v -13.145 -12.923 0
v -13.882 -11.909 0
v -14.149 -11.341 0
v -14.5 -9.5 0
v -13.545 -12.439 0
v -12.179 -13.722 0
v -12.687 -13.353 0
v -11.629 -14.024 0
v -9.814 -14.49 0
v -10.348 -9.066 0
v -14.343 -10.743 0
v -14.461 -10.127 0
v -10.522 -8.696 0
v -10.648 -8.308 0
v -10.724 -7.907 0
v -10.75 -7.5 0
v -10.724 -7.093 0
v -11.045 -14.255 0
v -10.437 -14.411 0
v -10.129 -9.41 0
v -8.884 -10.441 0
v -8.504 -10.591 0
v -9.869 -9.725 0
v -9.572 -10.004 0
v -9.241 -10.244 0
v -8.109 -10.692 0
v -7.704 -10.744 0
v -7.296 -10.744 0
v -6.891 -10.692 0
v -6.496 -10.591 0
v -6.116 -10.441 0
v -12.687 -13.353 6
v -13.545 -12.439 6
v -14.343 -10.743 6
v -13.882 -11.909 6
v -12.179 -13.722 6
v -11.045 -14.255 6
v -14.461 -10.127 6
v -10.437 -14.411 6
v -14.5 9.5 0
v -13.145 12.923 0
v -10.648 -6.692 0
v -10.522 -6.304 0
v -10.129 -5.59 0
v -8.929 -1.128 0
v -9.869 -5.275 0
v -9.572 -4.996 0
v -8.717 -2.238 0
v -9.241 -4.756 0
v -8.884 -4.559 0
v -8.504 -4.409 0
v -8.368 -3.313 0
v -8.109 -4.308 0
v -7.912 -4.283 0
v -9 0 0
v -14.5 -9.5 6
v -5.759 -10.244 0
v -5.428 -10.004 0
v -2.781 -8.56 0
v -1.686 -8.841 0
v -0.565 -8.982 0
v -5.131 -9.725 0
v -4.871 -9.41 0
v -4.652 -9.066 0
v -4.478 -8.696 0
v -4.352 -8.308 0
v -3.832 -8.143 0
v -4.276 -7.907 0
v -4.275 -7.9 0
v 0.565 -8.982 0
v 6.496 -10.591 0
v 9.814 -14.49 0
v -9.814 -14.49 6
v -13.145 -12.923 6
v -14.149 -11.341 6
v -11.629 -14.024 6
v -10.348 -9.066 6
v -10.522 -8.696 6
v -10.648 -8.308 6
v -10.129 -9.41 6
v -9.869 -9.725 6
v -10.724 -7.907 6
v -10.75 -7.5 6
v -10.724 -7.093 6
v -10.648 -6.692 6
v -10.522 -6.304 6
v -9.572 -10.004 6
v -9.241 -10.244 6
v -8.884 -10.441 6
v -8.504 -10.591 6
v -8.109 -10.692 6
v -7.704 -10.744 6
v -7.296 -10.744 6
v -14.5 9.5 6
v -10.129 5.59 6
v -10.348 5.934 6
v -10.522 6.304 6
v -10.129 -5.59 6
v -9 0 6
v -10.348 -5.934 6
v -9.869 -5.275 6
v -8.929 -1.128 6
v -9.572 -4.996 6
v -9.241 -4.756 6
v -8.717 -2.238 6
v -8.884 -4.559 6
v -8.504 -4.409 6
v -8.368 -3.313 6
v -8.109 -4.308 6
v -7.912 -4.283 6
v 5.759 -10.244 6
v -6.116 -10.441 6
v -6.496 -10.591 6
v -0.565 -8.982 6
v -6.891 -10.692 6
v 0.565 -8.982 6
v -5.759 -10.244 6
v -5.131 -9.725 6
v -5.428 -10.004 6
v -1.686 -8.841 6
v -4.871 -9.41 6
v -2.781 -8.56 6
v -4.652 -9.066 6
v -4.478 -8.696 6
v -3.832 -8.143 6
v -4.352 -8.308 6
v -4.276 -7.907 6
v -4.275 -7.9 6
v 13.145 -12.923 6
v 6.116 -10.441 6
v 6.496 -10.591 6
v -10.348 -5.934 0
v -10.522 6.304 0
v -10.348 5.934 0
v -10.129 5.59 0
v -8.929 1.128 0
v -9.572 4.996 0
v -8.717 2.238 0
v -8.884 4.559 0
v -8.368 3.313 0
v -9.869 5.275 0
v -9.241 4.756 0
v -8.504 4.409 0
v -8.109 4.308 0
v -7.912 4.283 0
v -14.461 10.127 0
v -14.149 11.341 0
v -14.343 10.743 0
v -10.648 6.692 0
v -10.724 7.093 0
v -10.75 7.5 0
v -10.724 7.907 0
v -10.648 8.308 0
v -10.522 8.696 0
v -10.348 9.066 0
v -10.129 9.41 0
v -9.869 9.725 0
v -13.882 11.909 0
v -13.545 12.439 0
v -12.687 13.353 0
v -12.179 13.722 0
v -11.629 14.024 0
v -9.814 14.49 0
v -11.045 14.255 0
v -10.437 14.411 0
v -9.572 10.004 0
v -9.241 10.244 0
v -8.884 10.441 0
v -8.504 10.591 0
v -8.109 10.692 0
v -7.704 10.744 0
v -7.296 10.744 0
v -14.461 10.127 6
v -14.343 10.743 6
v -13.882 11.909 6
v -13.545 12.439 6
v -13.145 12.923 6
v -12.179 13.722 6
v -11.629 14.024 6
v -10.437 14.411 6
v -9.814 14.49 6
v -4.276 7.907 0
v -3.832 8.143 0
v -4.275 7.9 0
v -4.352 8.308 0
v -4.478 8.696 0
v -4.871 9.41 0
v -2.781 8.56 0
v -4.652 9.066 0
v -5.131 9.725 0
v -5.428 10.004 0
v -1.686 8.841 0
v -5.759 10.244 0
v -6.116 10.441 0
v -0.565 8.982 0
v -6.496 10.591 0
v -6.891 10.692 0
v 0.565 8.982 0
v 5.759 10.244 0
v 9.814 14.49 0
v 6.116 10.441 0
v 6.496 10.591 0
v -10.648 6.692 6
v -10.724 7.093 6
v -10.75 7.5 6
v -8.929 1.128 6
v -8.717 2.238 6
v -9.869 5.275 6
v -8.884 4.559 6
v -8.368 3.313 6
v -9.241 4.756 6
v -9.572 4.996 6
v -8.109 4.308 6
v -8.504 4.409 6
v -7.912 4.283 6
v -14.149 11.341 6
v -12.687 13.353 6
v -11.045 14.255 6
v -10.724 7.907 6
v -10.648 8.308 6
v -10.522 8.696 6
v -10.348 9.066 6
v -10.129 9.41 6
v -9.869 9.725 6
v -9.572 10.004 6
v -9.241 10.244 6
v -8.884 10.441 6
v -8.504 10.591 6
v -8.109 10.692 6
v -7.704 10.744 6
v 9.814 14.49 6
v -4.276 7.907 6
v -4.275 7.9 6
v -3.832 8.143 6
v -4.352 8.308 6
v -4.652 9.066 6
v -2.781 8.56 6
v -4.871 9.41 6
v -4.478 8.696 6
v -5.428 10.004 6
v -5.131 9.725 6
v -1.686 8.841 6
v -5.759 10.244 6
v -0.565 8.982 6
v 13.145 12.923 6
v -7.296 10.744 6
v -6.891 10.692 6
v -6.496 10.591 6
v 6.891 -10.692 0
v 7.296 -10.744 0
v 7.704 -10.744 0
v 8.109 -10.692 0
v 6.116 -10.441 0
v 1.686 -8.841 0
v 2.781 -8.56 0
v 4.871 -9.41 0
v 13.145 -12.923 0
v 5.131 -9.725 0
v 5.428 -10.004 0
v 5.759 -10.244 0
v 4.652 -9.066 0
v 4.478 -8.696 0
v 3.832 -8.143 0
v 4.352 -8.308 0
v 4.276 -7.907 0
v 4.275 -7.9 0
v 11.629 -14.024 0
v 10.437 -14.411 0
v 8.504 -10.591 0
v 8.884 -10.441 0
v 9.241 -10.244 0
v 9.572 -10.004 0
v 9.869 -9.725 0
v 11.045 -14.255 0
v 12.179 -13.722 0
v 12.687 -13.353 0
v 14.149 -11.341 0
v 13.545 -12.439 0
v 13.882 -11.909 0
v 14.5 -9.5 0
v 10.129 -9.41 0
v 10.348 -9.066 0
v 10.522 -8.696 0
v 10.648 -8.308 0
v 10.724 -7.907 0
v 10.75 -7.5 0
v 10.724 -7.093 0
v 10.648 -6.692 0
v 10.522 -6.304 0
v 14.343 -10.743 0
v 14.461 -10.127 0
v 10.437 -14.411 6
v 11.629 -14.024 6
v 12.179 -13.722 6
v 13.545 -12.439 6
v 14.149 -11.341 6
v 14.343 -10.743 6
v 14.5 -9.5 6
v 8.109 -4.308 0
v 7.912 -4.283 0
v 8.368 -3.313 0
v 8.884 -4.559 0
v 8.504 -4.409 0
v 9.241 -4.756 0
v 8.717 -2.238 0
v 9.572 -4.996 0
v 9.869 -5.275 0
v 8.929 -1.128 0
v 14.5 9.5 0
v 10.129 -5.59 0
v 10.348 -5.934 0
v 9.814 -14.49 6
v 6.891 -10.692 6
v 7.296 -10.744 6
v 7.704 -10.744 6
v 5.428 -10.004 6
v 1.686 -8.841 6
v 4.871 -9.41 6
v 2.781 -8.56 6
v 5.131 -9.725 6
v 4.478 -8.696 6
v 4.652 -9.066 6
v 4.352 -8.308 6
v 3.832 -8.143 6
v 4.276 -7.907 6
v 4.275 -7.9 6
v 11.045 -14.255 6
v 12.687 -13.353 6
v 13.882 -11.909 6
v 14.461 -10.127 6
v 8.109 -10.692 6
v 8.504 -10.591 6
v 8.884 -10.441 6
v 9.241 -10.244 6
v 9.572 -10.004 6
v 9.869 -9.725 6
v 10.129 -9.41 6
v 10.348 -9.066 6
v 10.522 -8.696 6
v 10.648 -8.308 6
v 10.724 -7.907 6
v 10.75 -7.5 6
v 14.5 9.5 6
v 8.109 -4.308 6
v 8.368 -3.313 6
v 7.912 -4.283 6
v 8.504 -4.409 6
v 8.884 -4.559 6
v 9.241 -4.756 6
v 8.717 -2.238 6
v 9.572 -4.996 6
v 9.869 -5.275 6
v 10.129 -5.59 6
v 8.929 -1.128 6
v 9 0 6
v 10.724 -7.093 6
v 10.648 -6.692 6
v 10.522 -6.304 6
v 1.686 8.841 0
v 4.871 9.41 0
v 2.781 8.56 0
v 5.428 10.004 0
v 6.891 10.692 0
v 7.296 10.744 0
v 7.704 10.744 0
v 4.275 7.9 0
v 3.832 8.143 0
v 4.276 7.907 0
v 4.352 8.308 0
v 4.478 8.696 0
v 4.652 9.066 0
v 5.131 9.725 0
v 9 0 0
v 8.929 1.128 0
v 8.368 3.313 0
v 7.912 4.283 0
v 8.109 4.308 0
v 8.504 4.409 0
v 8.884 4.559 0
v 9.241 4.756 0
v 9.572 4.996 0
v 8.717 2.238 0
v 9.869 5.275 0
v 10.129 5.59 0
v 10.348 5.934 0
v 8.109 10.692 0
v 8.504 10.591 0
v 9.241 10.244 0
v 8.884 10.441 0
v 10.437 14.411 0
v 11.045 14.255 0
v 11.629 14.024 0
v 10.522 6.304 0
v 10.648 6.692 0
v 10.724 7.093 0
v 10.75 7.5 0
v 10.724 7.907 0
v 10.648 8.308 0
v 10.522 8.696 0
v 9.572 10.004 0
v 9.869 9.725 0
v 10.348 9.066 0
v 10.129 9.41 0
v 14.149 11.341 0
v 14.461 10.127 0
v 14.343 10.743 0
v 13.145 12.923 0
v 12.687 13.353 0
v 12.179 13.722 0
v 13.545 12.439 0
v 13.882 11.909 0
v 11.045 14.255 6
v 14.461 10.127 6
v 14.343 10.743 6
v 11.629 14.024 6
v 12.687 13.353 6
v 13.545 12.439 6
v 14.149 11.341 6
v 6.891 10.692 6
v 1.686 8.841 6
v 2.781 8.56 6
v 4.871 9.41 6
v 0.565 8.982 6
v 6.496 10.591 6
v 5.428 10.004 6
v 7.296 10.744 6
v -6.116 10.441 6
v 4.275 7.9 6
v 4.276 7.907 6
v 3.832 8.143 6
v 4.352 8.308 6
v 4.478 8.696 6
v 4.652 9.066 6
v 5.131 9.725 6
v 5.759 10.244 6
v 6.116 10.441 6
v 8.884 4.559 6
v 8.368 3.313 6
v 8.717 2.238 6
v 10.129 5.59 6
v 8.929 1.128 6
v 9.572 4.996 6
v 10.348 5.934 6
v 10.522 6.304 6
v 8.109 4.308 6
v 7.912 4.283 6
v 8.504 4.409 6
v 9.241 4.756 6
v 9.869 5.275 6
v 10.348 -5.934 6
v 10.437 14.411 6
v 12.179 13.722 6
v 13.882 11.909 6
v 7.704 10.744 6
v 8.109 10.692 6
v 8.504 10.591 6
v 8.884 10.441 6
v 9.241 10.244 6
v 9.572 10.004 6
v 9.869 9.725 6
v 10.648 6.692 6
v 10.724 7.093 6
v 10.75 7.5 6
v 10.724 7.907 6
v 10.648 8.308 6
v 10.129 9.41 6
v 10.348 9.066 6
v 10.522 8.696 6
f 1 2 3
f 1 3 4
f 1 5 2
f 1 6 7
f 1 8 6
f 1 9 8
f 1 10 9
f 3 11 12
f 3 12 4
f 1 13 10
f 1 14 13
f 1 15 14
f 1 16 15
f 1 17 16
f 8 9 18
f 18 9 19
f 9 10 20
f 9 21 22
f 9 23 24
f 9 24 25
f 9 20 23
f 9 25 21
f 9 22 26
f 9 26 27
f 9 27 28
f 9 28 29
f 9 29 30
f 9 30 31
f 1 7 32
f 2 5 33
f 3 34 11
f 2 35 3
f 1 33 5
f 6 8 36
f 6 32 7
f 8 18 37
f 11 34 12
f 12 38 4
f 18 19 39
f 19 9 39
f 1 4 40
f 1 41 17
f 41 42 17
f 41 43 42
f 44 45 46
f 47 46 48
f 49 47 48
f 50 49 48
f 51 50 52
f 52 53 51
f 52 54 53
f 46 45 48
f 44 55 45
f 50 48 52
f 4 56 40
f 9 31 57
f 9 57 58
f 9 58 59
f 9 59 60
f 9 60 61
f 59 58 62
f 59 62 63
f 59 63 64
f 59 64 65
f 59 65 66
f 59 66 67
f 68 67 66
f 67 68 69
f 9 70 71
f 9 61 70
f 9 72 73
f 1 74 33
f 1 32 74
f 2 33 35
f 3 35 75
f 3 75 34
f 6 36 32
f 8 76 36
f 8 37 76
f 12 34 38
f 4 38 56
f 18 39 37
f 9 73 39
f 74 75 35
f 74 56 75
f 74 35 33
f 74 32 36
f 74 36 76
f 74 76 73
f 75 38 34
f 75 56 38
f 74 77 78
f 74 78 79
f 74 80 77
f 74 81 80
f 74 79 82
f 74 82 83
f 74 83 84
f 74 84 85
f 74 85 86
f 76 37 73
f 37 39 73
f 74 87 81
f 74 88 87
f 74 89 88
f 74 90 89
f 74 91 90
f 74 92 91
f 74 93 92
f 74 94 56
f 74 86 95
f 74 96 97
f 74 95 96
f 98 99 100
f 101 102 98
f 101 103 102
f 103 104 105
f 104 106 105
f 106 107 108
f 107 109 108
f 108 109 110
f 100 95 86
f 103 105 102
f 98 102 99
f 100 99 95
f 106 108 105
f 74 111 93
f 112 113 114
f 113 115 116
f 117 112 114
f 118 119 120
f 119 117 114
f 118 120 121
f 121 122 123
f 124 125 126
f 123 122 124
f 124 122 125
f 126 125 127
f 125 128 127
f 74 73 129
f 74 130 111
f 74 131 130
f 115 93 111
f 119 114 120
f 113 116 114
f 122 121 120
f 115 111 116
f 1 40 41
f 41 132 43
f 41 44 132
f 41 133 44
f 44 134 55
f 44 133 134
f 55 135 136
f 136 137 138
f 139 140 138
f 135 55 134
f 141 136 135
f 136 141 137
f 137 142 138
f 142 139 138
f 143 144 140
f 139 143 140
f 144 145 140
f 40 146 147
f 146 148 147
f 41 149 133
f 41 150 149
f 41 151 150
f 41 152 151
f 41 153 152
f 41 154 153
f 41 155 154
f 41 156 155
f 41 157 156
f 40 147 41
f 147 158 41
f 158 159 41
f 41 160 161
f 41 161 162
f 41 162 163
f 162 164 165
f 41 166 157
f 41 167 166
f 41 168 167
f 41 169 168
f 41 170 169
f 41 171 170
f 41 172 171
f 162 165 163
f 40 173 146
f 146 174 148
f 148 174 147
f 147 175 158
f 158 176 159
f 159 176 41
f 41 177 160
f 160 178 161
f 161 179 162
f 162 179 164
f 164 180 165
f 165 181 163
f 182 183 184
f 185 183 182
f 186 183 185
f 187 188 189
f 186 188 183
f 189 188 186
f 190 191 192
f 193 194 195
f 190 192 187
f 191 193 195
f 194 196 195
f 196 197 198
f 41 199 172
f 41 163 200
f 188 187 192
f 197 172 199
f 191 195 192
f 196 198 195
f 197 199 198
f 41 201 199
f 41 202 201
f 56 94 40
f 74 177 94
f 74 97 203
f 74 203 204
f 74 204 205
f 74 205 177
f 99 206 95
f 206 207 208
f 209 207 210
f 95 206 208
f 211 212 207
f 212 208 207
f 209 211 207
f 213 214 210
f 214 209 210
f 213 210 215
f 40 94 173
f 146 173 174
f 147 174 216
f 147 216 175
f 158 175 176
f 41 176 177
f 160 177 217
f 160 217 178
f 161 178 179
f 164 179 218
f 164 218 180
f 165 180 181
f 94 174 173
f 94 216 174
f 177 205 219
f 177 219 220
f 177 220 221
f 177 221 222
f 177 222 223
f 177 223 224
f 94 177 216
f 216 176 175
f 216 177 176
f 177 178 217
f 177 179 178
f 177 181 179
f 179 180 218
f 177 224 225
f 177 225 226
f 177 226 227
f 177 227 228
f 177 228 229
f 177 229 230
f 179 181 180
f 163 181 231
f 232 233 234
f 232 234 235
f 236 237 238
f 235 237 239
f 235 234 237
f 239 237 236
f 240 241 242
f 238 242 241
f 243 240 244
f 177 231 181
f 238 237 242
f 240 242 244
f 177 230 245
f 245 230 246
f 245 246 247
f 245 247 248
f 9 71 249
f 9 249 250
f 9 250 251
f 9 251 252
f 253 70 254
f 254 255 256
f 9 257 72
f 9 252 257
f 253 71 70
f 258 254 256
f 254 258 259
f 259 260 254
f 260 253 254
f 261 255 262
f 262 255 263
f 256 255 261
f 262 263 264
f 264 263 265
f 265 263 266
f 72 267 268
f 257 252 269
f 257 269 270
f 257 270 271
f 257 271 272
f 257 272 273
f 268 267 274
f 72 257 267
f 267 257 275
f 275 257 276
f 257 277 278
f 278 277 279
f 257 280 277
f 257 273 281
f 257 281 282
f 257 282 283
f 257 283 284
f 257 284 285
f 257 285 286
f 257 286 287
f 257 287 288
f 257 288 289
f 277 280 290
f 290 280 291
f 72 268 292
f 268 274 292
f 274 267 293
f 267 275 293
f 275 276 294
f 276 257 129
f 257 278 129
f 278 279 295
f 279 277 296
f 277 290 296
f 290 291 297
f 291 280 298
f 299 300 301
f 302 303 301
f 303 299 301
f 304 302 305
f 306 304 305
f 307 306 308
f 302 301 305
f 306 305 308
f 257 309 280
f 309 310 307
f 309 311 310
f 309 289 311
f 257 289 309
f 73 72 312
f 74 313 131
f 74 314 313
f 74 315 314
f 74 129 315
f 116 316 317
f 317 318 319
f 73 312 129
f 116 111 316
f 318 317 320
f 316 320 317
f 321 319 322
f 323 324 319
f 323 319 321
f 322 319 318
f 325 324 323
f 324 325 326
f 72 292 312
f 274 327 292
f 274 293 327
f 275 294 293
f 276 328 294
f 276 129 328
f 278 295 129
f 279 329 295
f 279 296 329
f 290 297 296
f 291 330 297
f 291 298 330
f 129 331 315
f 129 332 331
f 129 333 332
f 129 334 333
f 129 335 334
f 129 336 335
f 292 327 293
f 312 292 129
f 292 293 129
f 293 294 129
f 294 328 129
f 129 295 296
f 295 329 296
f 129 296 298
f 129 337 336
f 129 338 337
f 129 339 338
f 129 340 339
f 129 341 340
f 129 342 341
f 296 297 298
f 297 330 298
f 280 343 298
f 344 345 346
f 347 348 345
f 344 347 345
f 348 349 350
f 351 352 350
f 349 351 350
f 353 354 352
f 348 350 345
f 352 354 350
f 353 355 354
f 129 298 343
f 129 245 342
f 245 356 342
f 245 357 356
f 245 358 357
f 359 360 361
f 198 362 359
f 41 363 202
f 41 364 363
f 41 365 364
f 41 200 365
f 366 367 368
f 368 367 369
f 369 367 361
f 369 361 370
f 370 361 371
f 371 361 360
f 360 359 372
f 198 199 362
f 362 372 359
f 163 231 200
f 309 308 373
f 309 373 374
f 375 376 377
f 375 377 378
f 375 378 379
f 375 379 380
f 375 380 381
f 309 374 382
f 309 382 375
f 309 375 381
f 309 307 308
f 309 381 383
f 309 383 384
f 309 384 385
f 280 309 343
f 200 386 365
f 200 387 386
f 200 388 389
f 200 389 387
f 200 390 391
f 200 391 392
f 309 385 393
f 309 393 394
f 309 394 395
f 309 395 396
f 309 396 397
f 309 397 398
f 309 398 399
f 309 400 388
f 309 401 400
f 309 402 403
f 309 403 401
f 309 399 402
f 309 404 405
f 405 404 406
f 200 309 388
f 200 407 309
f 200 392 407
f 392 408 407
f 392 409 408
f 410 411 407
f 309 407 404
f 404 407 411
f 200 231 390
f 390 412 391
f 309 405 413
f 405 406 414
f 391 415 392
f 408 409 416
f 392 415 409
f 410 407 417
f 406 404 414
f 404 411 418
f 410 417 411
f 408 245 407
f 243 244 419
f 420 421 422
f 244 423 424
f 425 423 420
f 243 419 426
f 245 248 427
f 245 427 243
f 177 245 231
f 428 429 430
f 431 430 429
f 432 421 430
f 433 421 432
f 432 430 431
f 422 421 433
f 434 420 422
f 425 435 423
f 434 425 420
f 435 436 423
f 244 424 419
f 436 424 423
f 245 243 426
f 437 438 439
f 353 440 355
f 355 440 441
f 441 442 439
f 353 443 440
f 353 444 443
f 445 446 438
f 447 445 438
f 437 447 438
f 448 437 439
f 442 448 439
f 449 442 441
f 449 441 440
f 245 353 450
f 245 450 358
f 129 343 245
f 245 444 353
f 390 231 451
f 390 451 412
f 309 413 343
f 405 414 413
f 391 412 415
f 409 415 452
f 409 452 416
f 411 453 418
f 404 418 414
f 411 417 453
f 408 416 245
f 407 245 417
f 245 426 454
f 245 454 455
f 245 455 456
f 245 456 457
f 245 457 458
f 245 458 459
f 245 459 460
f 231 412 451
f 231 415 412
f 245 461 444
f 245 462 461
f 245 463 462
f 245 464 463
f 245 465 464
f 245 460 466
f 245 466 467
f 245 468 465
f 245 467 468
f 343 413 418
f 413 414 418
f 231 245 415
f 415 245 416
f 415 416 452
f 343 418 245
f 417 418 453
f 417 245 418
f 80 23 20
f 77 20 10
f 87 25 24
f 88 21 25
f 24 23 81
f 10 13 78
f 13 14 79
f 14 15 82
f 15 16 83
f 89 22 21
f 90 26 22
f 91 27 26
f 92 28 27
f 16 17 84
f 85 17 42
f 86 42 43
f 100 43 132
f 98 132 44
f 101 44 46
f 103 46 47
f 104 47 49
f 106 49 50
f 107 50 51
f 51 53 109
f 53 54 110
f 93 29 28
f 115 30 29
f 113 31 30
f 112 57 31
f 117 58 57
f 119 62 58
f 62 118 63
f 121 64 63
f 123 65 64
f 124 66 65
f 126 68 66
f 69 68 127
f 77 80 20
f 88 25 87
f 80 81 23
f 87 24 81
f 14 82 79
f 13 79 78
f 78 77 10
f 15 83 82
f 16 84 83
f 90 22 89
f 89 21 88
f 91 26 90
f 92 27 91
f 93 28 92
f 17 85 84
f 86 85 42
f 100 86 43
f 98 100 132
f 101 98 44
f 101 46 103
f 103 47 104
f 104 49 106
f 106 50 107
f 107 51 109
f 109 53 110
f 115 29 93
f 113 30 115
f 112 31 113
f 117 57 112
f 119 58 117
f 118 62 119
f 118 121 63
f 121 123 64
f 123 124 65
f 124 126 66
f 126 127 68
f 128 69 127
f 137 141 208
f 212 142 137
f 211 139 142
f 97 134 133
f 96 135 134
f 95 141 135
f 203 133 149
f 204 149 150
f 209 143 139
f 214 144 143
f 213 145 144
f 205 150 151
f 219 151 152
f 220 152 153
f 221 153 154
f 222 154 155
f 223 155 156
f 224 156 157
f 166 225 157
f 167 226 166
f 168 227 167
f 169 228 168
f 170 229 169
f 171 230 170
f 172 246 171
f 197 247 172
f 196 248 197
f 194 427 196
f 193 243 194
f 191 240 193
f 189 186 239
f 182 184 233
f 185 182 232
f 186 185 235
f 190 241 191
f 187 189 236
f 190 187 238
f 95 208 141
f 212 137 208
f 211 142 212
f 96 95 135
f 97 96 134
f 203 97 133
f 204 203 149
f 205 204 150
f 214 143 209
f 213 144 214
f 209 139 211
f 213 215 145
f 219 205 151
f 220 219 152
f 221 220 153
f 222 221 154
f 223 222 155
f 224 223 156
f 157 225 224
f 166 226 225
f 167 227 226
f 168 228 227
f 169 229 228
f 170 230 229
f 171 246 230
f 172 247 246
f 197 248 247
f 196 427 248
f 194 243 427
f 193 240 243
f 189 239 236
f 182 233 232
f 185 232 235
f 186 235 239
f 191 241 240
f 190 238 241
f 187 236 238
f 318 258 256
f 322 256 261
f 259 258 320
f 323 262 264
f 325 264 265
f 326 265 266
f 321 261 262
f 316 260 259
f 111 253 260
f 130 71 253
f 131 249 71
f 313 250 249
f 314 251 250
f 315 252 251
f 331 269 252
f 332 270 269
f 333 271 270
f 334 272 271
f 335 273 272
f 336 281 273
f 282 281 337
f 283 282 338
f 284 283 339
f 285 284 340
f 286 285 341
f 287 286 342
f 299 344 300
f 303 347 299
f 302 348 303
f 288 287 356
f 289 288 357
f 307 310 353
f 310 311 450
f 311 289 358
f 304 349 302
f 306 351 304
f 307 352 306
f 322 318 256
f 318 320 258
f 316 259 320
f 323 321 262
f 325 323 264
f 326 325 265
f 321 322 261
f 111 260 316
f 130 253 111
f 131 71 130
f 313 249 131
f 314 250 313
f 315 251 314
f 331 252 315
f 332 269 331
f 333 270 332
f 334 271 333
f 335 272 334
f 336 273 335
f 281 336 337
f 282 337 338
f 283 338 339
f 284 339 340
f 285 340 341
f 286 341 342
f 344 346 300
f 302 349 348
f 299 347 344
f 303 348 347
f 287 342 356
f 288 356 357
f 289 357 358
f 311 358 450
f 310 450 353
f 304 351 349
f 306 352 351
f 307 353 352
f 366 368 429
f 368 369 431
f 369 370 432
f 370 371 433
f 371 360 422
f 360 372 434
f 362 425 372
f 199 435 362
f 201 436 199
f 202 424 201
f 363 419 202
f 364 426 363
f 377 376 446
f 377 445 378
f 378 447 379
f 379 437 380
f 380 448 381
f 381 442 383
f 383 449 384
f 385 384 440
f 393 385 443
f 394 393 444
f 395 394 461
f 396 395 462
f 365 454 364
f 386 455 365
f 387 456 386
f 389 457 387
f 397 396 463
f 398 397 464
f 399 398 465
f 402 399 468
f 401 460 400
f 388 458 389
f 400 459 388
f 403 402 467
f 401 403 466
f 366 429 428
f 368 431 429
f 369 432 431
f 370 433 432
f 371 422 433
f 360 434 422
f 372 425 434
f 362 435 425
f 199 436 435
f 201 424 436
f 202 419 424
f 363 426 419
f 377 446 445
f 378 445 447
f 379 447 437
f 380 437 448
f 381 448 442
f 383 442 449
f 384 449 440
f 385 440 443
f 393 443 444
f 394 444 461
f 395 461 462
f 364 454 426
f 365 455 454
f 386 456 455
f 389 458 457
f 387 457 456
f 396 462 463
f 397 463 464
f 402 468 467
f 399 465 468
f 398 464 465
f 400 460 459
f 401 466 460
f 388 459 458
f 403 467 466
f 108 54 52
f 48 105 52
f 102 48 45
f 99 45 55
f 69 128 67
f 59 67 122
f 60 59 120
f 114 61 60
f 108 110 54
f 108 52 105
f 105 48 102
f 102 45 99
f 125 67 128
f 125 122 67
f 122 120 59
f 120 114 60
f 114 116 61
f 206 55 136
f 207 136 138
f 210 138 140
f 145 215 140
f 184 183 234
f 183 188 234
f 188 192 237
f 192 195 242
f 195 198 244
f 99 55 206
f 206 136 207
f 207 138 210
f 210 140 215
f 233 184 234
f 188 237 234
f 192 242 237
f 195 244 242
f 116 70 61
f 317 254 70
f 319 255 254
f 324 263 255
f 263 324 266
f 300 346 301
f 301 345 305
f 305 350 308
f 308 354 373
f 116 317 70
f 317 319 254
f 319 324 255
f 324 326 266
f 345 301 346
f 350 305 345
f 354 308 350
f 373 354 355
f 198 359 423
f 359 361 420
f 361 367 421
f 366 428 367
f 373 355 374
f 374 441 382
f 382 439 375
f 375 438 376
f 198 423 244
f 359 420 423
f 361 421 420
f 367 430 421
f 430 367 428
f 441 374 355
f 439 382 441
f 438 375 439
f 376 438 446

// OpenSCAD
$fn = 50;

difference() {
	union() {
		hull() {
			translate(v = [-9.5, 9.5, 0]) {
				cylinder(h = 6, r = 5);
			}
			translate(v = [9.5, 9.5, 0]) {
				cylinder(h = 6, r = 5);
			}
			translate(v = [-9.5, -9.5, 0]) {
				cylinder(h = 6, r = 5);
			}
			translate(v = [9.5, -9.5, 0]) {
				cylinder(h = 6, r = 5);
			}
		}
	}
	union() {
		translate(v = [-7.5, -7.5, -100.0]) {
			cylinder(h = 200, r = 3.25);
		}
		translate(v = [-7.5, 7.5, -100.0]) {
			cylinder(h = 200, r = 3.25);
		}
		translate(v = [7.5, -7.5, -100.0]) {
			cylinder(h = 200, r = 3.25);
		}
		translate(v = [7.5, 7.5, -100.0]) {
			cylinder(h = 200, r = 3.25);
		}
		translate(v = [-7.5, -7.5, -100.0]) {
			cylinder(h = 200, r = 1.8);
		}
		translate(v = [-7.5, 7.5, -100.0]) {
			cylinder(h = 200, r = 1.8);
		}
		translate(v = [7.5, -7.5, -100.0]) {
			cylinder(h = 200, r = 1.8);
		}
		translate(v = [7.5, 7.5, -100.0]) {
			cylinder(h = 200, r = 1.8);
		}
		cylinder(h = 6, r = 9.0);
	}
}
